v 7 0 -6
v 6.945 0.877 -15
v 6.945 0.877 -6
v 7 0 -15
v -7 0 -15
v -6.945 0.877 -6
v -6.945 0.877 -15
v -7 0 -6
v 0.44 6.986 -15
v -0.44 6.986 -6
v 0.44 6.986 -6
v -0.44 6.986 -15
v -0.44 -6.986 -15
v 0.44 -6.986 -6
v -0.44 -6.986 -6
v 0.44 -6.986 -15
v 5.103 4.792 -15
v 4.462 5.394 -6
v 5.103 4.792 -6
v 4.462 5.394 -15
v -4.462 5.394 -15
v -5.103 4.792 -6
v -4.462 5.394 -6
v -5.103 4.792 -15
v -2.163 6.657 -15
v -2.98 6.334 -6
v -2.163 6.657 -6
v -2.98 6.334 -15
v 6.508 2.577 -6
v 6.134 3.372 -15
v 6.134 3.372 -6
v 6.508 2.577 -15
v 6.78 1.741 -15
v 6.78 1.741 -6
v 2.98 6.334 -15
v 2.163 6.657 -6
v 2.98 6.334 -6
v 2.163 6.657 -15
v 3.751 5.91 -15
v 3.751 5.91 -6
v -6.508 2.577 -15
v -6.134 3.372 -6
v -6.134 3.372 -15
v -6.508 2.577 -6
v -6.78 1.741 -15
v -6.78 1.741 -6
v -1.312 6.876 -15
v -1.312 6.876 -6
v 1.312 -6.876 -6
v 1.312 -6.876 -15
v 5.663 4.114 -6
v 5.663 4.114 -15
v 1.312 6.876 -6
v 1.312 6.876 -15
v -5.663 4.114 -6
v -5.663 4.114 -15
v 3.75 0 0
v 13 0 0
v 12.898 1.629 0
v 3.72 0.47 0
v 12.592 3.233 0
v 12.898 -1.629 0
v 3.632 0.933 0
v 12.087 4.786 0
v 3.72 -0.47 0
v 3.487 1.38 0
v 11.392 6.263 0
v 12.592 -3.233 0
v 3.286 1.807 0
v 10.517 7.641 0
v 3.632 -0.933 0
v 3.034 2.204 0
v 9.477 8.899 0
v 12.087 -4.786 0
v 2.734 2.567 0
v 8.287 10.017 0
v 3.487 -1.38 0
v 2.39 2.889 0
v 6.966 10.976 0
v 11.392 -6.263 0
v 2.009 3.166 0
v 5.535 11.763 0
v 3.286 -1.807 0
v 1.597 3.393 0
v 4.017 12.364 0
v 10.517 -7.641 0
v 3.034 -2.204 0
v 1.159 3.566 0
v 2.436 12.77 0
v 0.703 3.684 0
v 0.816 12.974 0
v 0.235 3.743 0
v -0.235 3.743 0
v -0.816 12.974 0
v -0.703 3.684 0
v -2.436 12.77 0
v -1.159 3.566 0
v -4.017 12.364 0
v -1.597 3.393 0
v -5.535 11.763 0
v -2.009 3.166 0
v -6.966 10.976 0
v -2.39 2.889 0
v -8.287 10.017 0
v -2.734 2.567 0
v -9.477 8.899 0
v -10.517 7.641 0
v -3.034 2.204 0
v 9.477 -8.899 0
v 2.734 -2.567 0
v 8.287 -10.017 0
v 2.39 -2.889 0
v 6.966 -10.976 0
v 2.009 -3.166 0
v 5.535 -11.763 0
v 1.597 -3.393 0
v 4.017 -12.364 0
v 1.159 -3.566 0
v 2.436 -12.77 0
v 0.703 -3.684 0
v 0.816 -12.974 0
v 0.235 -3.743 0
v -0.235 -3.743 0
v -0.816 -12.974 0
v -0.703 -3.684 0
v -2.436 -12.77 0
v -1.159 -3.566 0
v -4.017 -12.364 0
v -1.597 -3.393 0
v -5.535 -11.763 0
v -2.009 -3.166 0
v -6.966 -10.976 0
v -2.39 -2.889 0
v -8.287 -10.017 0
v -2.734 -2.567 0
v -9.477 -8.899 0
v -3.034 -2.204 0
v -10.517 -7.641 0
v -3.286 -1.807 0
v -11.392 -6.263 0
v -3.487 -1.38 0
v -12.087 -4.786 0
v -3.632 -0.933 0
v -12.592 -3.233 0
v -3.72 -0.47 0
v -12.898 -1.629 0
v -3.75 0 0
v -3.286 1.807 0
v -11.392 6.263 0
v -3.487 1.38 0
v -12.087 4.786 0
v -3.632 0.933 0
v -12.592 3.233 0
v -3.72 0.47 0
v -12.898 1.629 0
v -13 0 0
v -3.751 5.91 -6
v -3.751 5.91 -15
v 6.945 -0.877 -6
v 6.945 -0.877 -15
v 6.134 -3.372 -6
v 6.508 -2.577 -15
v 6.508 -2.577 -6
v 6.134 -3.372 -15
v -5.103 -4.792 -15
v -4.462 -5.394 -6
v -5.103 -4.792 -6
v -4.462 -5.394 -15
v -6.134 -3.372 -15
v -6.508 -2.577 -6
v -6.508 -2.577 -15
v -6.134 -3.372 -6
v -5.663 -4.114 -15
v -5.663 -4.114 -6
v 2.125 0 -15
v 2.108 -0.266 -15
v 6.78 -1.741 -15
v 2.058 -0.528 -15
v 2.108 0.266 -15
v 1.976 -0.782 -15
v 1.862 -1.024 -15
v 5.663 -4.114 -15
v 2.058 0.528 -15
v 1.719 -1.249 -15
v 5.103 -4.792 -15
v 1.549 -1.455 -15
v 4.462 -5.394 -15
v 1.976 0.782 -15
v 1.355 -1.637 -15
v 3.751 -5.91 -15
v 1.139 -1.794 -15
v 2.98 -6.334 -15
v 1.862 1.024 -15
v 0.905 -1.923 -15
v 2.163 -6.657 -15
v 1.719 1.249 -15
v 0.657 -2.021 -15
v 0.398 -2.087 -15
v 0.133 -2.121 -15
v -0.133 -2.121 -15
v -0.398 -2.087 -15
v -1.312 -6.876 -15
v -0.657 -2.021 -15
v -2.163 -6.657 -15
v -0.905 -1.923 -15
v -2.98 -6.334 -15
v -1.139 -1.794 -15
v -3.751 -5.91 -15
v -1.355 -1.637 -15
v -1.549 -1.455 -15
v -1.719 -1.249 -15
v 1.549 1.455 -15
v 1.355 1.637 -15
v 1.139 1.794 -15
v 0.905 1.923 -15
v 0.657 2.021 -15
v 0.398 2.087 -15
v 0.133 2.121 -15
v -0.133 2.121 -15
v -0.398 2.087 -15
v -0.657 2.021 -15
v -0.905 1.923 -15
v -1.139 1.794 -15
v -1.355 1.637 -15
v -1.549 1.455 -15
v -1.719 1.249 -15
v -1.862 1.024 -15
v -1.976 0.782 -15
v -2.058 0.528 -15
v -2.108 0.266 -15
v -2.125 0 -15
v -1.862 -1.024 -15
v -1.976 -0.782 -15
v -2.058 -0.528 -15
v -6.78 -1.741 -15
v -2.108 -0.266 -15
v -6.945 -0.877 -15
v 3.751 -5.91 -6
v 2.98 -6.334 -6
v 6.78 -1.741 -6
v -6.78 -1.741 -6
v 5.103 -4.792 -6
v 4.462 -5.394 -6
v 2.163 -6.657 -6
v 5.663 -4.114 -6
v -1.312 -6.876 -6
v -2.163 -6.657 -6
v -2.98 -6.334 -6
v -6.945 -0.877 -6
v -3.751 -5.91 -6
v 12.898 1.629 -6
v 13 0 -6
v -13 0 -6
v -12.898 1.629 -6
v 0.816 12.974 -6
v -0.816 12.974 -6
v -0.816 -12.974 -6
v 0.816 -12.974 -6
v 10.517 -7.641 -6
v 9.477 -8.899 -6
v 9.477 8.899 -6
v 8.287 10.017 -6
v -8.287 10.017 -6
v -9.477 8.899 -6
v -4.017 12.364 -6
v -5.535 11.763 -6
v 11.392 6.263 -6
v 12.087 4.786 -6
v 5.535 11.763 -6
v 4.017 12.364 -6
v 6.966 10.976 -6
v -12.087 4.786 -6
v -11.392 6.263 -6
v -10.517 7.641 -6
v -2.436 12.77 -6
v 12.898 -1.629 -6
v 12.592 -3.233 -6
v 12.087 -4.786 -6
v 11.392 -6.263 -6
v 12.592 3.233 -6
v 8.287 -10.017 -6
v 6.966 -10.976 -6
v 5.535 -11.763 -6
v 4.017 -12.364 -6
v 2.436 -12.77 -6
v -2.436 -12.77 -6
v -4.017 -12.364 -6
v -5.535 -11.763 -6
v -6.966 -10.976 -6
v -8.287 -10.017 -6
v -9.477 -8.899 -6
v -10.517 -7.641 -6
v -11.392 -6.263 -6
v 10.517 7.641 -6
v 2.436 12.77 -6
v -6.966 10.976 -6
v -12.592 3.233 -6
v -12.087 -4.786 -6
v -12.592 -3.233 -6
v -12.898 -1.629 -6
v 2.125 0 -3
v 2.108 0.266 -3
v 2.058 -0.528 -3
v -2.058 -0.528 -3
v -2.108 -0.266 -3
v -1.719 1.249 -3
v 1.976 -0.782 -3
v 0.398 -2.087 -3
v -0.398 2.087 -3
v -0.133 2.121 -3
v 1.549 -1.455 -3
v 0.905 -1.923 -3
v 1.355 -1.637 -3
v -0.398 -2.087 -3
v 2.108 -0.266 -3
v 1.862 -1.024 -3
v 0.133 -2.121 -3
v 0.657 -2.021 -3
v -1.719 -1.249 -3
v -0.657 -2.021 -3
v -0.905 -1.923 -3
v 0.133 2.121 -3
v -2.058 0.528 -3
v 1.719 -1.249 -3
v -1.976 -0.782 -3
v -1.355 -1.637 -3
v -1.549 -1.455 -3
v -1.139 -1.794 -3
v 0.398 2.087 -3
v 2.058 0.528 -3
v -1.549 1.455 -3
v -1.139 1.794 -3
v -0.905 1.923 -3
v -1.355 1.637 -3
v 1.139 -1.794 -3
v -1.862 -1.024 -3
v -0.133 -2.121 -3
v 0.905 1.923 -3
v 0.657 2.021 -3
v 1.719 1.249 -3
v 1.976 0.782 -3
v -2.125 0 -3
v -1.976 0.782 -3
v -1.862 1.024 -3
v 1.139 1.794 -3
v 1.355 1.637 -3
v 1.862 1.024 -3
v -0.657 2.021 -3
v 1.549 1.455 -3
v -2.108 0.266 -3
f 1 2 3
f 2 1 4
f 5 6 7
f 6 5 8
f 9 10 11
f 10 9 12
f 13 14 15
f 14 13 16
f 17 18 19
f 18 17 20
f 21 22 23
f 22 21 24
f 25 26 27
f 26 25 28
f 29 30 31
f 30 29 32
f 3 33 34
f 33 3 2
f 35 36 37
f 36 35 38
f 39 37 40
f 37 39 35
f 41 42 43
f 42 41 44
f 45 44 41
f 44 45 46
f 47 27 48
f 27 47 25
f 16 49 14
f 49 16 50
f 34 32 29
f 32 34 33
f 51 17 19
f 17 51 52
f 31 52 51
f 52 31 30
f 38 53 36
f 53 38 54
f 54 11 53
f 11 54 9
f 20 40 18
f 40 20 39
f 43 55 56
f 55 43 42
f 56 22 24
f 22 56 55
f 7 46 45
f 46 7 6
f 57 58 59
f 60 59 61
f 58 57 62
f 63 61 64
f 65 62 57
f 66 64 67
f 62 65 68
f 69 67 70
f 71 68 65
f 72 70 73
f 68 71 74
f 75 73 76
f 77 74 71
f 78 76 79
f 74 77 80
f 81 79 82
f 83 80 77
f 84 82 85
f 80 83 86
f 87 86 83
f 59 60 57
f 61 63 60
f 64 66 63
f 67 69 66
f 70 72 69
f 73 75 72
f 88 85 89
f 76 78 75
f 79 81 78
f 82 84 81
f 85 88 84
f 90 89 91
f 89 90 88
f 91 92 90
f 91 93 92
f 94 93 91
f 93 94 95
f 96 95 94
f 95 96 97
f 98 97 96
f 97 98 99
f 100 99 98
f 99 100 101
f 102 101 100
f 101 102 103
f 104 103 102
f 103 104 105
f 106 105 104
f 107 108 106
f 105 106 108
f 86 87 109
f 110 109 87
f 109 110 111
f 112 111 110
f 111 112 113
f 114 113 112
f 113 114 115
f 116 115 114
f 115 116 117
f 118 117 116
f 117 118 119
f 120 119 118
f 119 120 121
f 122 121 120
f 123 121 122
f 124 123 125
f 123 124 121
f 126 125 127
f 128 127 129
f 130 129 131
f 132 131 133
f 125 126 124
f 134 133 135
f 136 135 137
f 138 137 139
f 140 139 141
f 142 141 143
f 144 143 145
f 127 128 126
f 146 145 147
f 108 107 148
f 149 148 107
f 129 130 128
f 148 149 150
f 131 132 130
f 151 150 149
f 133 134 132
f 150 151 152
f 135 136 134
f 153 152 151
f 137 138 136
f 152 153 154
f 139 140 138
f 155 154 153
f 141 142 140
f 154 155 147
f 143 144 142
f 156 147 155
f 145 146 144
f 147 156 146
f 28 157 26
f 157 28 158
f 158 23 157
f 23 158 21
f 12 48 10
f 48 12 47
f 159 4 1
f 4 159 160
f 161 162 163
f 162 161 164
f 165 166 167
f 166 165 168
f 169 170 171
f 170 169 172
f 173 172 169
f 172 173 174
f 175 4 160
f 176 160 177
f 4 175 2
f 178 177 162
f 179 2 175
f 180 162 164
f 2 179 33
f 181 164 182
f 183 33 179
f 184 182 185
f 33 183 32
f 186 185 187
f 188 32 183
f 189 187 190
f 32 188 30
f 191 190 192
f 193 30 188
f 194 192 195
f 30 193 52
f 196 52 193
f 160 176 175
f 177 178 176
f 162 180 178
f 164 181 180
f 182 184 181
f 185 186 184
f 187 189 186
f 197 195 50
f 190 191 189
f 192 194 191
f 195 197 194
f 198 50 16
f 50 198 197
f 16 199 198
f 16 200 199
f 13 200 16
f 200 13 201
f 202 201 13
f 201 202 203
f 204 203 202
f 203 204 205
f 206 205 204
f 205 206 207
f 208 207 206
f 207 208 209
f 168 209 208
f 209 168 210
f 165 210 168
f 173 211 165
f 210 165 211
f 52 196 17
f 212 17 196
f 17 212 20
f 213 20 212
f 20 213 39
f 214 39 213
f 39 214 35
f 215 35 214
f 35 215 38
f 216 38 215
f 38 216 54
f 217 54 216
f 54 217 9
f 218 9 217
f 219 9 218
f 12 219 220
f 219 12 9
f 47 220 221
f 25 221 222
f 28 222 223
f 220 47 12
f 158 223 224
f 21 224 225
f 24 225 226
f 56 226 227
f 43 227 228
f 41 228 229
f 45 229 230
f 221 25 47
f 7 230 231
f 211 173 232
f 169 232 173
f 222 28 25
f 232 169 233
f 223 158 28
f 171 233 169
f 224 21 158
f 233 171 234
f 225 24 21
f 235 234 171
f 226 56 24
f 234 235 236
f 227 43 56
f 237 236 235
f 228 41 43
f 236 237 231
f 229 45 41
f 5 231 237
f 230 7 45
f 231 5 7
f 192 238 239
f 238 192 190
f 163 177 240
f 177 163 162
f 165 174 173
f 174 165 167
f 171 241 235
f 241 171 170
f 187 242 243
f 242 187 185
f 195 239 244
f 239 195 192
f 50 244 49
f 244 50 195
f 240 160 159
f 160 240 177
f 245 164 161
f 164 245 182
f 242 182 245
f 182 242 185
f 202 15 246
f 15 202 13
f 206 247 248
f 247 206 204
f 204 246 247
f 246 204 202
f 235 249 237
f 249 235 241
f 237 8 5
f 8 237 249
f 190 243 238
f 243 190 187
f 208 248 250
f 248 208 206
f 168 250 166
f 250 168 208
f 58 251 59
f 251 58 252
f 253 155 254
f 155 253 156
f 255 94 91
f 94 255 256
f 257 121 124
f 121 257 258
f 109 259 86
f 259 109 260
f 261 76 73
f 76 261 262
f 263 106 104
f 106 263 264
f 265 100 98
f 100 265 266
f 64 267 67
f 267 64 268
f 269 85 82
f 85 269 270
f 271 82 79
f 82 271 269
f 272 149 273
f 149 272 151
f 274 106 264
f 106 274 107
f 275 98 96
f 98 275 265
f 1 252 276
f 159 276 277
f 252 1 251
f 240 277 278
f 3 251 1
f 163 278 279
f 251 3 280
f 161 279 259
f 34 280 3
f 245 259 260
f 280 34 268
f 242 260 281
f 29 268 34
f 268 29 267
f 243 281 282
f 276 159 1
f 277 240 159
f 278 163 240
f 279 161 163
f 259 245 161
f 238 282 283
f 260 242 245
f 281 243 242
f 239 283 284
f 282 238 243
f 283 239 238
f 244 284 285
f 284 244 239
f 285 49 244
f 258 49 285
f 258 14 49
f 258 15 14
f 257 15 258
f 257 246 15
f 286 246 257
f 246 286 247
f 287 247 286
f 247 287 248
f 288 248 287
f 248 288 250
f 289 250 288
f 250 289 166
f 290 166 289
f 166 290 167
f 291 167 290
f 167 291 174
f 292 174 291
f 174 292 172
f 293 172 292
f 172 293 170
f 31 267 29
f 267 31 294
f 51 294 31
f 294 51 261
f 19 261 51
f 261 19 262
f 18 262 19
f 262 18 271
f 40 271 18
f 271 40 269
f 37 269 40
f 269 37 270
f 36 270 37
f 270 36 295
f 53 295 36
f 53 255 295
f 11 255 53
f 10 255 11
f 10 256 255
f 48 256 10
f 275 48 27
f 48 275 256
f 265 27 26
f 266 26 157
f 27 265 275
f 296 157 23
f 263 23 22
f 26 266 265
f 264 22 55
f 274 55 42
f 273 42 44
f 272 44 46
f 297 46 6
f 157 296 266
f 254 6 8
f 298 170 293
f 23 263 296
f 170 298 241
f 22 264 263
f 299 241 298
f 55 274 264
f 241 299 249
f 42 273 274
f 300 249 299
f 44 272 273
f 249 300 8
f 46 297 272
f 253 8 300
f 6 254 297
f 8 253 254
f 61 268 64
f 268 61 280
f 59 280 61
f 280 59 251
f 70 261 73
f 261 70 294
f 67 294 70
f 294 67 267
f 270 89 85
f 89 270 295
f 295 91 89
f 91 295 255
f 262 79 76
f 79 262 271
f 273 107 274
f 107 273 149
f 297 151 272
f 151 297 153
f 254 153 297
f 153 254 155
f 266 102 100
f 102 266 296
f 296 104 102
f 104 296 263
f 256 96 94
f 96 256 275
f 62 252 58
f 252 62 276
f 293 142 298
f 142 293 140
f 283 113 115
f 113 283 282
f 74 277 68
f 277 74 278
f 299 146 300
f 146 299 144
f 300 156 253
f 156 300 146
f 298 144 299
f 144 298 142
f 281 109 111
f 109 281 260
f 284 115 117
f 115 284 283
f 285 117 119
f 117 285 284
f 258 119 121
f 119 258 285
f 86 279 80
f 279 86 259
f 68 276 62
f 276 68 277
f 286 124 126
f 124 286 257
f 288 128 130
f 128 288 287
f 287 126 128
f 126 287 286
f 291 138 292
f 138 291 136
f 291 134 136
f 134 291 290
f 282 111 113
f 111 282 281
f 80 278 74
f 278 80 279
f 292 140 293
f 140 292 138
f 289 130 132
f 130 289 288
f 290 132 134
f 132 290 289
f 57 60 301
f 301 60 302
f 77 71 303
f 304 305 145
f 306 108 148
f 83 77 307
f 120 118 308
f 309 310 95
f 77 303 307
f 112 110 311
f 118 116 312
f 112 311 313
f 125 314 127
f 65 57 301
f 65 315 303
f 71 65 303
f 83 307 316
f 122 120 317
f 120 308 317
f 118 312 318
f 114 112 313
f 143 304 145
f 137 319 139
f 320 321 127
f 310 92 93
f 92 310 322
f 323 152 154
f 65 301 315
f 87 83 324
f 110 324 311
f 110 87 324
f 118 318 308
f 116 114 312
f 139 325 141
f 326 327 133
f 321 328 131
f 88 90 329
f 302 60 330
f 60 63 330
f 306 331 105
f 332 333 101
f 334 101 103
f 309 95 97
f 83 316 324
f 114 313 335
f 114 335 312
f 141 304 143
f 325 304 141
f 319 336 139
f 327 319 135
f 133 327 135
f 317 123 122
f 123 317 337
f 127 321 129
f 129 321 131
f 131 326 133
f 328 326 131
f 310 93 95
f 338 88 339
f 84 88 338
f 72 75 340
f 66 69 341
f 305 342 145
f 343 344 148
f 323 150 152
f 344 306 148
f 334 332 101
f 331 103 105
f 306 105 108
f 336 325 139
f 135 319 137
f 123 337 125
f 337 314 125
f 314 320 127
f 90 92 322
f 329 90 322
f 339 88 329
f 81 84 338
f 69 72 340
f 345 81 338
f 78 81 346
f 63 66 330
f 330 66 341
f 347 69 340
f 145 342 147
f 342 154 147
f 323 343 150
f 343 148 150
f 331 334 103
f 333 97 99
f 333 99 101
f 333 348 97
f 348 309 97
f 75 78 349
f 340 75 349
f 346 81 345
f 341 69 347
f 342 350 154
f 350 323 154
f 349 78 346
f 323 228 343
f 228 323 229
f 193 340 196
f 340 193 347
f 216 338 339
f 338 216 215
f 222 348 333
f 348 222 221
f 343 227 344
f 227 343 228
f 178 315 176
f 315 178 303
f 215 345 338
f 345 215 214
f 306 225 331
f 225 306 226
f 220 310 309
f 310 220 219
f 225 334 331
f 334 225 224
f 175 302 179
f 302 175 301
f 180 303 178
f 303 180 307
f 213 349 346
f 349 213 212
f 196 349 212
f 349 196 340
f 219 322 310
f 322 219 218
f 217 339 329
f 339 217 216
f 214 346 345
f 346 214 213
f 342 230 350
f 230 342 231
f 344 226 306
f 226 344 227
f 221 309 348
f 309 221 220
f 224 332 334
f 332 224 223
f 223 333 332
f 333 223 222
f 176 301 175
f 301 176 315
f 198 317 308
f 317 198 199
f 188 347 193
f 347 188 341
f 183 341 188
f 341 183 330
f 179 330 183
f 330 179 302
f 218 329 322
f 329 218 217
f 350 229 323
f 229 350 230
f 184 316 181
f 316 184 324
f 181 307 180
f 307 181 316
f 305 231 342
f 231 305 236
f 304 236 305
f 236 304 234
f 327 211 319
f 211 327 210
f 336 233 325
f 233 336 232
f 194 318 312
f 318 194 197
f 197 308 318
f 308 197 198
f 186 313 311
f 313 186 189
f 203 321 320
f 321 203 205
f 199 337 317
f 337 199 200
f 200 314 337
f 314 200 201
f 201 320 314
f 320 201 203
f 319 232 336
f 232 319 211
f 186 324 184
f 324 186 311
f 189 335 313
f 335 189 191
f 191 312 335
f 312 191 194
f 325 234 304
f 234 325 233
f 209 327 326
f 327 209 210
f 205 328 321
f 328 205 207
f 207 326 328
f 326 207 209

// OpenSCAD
$fn = 50;


difference() {
	union() {
		translate(v = [0, 0, -15.0000000000]) {
			cylinder(h = 15, r = 7.0000000000);
		}
		translate(v = [0, 0, -6.0000000000]) {
			cylinder(h = 6, r = 13.0000000000);
		}
	}
	union() {
		translate(v = [0, 0, 0]) {
			rotate(a = [0, 0, 0]) {
				difference() {
					union() {
						#translate(v = [0, 0, -15.0000000000]) {
							cylinder(h = 15, r = 2.0000000000);
						}
						#translate(v = [0, 0, -3]) {
							cylinder(h = 3, r1 = 2.1250000000, r2 = 3.7500000000);
						}
						#translate(v = [0, 0, -15.0000000000]) {
							cylinder(h = 15, r = 2.1250000000);
						}
						#translate(v = [0, 0, -15.0000000000]) {
							cylinder(h = 15, r = 2.0000000000);
						}
					}
					union();
				}
			}
		}
	}
}
